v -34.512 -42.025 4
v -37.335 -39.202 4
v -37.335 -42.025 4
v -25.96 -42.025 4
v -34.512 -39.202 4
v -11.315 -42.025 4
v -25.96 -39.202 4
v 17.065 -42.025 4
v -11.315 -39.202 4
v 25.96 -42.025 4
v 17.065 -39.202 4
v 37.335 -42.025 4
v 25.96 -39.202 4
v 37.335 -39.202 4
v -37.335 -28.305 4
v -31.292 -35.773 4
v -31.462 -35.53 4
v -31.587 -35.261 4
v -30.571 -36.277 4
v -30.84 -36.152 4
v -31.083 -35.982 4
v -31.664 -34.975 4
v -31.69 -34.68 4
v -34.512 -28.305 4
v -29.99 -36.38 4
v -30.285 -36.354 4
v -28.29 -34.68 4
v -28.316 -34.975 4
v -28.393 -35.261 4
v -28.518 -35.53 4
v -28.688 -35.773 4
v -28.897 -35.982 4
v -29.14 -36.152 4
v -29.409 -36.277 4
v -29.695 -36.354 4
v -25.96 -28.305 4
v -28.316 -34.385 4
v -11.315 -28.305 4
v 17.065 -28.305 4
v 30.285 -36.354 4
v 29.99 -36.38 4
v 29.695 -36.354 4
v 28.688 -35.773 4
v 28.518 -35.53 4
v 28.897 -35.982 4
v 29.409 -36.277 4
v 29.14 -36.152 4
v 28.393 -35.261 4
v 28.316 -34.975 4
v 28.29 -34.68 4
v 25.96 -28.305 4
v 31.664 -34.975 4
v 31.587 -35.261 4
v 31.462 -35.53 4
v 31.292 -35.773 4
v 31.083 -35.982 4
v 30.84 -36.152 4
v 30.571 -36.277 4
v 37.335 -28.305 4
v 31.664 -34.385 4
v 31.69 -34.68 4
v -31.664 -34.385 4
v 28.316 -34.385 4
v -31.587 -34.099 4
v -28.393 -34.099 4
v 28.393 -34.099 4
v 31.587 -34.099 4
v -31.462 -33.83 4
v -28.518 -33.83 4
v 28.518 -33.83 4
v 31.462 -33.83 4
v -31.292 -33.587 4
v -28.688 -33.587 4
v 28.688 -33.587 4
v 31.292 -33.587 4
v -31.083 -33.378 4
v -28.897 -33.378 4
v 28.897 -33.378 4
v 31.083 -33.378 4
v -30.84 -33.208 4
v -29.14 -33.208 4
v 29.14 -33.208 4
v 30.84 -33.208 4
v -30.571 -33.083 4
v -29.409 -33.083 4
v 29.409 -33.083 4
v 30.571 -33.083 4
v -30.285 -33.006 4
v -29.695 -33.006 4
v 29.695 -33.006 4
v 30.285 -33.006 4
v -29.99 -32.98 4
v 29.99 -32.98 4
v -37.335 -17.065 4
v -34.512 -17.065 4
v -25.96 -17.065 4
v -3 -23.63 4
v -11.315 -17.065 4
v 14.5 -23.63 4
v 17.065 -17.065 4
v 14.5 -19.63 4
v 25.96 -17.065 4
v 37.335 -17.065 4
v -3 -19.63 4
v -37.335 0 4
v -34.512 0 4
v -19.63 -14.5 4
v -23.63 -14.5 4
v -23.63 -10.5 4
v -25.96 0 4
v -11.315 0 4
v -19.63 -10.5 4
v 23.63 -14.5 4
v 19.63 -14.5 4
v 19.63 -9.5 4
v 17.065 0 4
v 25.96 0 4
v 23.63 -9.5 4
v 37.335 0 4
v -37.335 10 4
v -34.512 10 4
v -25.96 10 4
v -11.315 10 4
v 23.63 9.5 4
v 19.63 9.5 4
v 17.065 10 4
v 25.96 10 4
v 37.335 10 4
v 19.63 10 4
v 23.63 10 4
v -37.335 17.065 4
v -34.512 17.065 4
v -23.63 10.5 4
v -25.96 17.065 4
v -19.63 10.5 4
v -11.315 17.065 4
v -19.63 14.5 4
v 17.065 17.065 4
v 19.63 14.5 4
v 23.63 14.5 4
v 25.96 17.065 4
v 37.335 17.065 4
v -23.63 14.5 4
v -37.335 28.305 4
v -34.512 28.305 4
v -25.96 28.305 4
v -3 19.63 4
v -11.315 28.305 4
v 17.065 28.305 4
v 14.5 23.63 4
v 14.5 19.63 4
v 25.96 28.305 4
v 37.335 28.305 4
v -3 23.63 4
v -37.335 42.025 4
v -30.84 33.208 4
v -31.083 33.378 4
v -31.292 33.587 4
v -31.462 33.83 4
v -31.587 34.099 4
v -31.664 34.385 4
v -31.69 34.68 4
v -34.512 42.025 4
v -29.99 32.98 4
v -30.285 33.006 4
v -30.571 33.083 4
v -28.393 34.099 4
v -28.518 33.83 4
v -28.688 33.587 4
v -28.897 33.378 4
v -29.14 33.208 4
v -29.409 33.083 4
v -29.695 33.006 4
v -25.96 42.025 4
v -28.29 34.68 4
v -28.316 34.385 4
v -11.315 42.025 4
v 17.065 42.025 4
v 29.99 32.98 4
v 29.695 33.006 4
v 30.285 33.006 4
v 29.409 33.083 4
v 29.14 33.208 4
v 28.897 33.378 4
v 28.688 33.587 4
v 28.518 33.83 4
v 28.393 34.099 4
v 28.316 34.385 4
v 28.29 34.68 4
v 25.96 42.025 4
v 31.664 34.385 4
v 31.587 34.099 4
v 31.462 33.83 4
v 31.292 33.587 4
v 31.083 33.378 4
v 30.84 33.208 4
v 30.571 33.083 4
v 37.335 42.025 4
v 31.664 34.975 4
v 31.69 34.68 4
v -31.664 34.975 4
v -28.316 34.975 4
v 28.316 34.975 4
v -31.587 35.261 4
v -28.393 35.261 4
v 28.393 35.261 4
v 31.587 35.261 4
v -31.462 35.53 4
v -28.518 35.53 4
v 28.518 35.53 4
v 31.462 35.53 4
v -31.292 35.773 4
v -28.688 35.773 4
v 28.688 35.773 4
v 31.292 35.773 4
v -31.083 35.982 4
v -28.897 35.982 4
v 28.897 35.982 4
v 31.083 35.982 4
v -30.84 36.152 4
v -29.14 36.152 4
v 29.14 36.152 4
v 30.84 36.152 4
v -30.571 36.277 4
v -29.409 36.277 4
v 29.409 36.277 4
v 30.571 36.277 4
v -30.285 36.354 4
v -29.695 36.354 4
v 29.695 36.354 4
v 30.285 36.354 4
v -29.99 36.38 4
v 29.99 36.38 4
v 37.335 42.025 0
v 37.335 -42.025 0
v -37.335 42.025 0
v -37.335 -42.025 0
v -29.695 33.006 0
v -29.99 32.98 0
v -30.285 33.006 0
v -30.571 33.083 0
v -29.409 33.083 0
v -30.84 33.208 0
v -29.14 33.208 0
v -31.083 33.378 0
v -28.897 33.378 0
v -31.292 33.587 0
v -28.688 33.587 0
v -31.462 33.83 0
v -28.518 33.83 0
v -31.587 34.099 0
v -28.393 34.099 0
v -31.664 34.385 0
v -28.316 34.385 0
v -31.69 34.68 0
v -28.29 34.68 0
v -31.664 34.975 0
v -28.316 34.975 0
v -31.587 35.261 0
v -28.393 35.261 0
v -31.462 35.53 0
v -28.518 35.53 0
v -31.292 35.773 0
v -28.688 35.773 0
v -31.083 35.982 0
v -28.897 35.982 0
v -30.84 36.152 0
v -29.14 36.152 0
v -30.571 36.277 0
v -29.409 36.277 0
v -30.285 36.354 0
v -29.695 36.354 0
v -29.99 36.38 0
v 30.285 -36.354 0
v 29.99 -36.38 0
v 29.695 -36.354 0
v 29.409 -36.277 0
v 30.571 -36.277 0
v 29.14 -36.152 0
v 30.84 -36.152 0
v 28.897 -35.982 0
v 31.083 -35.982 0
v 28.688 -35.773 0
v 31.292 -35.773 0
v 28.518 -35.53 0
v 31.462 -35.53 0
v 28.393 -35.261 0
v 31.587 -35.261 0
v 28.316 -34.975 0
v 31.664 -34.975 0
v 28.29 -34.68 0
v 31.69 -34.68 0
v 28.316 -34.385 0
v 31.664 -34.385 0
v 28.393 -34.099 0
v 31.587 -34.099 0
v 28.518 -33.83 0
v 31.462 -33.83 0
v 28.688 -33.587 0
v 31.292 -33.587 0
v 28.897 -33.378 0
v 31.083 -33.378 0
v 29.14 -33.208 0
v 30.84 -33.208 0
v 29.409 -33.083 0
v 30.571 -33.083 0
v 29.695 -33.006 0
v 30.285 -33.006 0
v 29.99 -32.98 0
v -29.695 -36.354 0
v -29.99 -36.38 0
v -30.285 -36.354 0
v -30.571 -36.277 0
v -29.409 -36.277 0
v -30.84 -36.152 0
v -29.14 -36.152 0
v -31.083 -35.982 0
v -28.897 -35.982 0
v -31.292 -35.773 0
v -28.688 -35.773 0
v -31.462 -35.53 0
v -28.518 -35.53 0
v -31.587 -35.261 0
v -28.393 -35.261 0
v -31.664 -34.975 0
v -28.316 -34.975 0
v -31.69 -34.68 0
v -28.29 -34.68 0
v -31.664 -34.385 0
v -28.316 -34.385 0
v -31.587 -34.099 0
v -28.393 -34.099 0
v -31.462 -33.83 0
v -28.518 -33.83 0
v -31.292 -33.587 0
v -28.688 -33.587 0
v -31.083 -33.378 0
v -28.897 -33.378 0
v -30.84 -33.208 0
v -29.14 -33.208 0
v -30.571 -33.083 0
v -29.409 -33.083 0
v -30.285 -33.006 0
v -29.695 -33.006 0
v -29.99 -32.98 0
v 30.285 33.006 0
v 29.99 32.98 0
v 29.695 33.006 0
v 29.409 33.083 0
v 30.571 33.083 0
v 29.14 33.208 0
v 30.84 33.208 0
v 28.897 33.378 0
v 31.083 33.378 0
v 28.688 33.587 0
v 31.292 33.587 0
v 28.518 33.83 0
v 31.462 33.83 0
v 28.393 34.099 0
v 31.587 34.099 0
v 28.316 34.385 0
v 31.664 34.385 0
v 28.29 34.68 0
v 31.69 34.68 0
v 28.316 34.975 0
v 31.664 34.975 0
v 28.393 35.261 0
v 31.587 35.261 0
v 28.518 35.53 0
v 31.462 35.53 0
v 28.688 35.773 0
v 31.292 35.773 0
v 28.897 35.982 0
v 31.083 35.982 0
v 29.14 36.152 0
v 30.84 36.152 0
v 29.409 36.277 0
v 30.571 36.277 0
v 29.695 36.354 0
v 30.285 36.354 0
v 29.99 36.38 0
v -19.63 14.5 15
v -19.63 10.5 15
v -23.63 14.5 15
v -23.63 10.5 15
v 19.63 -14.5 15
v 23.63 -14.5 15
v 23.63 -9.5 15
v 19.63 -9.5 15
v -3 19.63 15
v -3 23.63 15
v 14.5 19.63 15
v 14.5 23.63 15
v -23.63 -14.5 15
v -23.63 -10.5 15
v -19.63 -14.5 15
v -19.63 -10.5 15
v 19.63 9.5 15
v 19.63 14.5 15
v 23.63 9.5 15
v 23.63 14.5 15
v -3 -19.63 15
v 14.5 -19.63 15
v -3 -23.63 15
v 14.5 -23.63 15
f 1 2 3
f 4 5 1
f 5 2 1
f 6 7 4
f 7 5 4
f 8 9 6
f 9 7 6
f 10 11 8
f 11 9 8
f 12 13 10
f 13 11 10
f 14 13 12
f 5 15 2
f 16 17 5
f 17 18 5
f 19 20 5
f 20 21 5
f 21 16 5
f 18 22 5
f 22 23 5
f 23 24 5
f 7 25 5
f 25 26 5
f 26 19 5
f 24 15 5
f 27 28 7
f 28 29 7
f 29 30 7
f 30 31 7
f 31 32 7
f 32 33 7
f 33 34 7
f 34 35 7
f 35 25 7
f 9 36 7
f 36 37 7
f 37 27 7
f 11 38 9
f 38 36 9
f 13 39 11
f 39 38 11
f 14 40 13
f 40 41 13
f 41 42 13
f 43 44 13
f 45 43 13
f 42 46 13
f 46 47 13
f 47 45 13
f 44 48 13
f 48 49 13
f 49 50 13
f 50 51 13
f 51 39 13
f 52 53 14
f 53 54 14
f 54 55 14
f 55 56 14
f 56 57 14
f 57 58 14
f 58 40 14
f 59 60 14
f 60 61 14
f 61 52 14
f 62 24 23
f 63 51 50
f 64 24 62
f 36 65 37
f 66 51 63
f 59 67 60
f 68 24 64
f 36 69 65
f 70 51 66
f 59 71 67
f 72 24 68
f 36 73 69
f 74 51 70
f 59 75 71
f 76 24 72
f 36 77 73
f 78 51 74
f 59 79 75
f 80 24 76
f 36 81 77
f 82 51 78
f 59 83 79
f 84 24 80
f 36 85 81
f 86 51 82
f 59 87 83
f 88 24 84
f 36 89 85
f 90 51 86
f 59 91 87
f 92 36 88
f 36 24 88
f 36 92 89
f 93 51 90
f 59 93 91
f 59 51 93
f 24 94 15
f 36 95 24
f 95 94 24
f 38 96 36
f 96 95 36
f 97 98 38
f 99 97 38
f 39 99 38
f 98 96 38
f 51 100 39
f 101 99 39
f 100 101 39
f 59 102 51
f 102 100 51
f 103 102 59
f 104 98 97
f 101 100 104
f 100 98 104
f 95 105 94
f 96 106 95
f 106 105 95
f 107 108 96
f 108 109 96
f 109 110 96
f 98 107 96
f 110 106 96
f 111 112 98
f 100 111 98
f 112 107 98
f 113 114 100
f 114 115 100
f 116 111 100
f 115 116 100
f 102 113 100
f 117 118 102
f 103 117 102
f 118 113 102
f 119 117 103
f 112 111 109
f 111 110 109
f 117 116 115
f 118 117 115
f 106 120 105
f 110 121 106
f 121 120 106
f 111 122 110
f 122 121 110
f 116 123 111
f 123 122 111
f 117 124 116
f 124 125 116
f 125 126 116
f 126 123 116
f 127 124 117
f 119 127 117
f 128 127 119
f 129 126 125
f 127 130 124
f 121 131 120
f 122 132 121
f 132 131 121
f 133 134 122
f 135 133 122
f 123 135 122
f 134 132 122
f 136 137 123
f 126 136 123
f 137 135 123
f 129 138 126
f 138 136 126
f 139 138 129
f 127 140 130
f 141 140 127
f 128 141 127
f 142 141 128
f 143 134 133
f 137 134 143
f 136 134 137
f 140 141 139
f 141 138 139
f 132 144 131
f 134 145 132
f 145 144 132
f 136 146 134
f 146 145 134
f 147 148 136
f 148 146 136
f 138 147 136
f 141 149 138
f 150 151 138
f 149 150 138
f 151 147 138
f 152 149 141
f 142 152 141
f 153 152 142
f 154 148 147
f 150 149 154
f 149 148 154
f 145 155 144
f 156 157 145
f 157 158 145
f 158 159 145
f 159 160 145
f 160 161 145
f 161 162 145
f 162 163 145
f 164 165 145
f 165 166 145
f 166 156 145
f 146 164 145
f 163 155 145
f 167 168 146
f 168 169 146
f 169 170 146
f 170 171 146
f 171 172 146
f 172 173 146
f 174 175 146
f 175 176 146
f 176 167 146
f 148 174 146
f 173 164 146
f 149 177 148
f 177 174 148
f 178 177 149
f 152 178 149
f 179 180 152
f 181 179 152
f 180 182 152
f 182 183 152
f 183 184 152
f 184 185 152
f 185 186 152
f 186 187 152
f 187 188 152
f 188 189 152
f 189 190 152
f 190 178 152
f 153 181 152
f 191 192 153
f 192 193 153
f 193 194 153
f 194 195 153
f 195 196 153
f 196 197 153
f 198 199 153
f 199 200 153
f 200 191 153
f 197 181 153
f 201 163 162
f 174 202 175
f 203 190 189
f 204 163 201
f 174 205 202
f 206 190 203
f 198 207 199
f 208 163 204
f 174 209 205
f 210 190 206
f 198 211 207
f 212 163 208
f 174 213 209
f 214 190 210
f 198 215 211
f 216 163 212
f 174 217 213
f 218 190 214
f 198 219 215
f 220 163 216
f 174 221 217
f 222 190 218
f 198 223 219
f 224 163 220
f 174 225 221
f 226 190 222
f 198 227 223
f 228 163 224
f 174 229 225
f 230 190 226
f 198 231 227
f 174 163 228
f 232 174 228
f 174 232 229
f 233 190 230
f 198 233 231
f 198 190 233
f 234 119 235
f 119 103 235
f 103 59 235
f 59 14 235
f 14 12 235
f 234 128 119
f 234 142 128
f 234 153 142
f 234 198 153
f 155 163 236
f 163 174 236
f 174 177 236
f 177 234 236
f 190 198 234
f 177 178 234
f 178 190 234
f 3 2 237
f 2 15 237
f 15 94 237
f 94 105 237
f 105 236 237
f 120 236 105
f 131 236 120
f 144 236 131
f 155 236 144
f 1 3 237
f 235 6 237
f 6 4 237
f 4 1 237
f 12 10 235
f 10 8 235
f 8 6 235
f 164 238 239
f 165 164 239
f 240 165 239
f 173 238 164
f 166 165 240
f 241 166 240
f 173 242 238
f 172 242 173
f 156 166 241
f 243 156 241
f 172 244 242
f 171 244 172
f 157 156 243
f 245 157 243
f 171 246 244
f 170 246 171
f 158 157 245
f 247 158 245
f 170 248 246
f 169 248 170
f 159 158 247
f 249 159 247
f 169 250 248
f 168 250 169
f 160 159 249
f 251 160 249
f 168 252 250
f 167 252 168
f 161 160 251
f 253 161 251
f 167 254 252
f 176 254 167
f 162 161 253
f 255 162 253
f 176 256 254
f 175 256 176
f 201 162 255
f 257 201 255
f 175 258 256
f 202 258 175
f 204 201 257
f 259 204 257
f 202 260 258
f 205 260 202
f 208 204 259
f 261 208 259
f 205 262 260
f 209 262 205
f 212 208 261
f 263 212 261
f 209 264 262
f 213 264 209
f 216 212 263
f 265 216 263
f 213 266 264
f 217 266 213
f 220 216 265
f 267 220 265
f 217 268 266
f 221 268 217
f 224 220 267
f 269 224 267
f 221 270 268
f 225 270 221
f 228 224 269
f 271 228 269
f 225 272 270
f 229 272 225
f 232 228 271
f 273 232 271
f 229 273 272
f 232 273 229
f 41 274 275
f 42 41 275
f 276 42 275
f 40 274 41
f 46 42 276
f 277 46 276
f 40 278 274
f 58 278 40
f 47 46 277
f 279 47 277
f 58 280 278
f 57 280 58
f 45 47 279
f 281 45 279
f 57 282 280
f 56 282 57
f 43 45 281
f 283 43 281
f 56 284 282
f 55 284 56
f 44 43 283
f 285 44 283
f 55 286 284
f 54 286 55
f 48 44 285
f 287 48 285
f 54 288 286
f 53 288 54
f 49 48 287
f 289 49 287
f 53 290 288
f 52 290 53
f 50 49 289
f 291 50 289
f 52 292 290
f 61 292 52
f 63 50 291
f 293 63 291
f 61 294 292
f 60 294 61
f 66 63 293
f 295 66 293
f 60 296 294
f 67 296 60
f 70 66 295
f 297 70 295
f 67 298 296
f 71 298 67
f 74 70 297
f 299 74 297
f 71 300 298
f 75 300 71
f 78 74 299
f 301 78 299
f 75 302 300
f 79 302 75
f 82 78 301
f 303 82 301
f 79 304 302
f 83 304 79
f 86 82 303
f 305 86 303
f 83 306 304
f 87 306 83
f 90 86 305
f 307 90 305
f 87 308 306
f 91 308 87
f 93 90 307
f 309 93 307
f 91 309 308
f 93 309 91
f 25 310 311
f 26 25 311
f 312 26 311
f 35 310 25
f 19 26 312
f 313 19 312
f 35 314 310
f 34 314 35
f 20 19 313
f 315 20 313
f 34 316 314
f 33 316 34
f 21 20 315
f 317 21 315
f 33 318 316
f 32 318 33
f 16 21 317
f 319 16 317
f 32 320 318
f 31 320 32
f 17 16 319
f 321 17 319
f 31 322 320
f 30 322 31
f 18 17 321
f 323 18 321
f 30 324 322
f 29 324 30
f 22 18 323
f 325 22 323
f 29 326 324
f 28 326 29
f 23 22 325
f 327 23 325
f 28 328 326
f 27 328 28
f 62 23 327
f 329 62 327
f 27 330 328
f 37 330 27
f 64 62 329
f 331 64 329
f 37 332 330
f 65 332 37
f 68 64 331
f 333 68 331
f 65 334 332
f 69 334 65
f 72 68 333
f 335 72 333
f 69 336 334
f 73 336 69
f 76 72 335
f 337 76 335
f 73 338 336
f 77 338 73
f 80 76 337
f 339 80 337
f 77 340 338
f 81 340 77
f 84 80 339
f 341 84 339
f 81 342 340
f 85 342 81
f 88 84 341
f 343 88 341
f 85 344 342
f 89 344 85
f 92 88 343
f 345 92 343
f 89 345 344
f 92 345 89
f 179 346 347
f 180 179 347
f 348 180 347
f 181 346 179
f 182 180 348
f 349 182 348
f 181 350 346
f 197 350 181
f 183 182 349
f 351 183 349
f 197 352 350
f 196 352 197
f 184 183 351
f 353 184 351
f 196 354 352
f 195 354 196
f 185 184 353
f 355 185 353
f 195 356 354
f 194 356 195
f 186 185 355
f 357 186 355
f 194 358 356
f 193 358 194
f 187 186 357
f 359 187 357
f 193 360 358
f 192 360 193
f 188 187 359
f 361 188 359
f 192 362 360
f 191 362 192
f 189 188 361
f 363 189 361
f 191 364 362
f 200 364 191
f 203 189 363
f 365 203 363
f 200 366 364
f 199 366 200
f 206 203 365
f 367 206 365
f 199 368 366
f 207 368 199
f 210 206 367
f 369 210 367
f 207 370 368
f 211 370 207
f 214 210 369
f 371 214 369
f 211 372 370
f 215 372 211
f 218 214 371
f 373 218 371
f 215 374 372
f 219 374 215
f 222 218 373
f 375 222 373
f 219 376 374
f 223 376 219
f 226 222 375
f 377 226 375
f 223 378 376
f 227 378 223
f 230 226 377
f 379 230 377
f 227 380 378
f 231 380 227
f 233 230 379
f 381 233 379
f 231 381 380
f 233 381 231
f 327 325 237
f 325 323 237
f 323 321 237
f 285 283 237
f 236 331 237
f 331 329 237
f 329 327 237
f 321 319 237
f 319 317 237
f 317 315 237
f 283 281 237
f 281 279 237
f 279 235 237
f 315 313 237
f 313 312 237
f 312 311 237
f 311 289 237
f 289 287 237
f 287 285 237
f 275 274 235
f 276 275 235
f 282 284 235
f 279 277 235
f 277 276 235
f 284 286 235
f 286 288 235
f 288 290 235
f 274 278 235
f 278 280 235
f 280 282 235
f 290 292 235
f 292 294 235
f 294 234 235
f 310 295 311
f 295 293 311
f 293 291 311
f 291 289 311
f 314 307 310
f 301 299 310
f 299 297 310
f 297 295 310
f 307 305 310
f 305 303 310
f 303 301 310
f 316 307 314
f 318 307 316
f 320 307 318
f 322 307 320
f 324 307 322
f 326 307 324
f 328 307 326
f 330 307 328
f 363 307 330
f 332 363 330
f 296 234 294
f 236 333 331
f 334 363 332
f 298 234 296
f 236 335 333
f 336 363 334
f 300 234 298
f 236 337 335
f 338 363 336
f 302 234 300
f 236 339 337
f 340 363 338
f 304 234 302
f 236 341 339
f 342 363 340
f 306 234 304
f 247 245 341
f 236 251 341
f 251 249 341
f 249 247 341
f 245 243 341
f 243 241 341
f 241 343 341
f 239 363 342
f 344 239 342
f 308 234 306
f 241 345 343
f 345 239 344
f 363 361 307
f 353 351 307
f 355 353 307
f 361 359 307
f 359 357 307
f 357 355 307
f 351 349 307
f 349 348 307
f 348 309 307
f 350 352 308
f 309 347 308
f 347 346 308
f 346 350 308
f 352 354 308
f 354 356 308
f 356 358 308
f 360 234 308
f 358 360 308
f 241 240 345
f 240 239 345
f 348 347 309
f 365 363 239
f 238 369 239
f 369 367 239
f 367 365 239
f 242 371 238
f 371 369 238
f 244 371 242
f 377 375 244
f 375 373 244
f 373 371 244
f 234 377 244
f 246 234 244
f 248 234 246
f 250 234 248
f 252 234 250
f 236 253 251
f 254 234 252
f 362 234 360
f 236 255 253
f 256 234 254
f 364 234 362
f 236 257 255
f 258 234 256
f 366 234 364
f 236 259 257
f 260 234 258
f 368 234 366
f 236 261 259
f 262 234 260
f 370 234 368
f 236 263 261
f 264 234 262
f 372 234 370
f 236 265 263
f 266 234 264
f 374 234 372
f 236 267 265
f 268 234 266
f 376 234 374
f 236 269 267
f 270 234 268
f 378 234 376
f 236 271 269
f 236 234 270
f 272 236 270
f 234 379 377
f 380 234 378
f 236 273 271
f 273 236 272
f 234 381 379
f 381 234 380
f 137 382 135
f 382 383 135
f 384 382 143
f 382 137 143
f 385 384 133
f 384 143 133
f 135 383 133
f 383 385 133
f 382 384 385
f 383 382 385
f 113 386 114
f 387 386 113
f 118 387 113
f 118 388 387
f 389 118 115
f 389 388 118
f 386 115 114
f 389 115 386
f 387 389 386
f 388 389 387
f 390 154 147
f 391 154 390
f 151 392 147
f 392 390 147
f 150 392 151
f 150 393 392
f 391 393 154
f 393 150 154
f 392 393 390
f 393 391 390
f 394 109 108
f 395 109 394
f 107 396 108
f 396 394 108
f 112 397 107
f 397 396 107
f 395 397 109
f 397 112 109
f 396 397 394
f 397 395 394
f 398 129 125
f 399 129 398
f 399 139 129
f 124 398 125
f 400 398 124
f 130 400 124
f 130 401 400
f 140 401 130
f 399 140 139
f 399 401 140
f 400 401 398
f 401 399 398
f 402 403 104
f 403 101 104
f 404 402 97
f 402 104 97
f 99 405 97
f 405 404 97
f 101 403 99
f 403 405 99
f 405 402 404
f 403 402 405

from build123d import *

# Parameters (mm, degrees)
SKETCH2_W           = 74.67
SKETCH2_H           = 84.05
SKETCH2_R           = 1.7
BOSS_EXTRUDE1_DEPTH = 4
SKETCH2_3_W         = 17.5
SKETCH2_3_H         = 4
SKETCH2_3_W_2       = 4
SKETCH2_3_H_2       = 5
BOSS_EXTRUDE2_DEPTH = 15


with BuildPart() as part:
    # Sketch2 → Boss-Extrude1 (new body)
    with BuildSketch(Plane.XY):
        Rectangle(SKETCH2_W, SKETCH2_H)
        with Locations((-29.99, -34.68)):
            Circle(SKETCH2_R, mode=Mode.SUBTRACT)
        with Locations((29.99, -34.68)):
            Circle(SKETCH2_R, mode=Mode.SUBTRACT)
        with Locations((-29.99, 34.68)):
            Circle(SKETCH2_R, mode=Mode.SUBTRACT)
        with Locations((29.99, 34.68)):
            Circle(SKETCH2_R, mode=Mode.SUBTRACT)
    extrude(amount=BOSS_EXTRUDE1_DEPTH)

    # Sketch2<3> → Boss-Extrude2 (add)
    with BuildSketch(Plane.XY):
        with Locations((5.75, -21.63)):
            Rectangle(SKETCH2_3_W, SKETCH2_3_H)
        with Locations((21.63, -12)):
            Rectangle(SKETCH2_3_W_2, SKETCH2_3_H_2)
        with Locations((-21.63, -12.5)):
            Rectangle(SKETCH2_3_W_2, SKETCH2_3_H)
        with Locations((21.63, 12)):
            Rectangle(SKETCH2_3_W_2, SKETCH2_3_H_2)
        with Locations((-21.63, 12.5)):
            Rectangle(SKETCH2_3_W_2, SKETCH2_3_H)
        with Locations((5.75, 21.63)):
            Rectangle(SKETCH2_3_W, SKETCH2_3_H)
    extrude(amount=BOSS_EXTRUDE2_DEPTH)


solid = part.part
